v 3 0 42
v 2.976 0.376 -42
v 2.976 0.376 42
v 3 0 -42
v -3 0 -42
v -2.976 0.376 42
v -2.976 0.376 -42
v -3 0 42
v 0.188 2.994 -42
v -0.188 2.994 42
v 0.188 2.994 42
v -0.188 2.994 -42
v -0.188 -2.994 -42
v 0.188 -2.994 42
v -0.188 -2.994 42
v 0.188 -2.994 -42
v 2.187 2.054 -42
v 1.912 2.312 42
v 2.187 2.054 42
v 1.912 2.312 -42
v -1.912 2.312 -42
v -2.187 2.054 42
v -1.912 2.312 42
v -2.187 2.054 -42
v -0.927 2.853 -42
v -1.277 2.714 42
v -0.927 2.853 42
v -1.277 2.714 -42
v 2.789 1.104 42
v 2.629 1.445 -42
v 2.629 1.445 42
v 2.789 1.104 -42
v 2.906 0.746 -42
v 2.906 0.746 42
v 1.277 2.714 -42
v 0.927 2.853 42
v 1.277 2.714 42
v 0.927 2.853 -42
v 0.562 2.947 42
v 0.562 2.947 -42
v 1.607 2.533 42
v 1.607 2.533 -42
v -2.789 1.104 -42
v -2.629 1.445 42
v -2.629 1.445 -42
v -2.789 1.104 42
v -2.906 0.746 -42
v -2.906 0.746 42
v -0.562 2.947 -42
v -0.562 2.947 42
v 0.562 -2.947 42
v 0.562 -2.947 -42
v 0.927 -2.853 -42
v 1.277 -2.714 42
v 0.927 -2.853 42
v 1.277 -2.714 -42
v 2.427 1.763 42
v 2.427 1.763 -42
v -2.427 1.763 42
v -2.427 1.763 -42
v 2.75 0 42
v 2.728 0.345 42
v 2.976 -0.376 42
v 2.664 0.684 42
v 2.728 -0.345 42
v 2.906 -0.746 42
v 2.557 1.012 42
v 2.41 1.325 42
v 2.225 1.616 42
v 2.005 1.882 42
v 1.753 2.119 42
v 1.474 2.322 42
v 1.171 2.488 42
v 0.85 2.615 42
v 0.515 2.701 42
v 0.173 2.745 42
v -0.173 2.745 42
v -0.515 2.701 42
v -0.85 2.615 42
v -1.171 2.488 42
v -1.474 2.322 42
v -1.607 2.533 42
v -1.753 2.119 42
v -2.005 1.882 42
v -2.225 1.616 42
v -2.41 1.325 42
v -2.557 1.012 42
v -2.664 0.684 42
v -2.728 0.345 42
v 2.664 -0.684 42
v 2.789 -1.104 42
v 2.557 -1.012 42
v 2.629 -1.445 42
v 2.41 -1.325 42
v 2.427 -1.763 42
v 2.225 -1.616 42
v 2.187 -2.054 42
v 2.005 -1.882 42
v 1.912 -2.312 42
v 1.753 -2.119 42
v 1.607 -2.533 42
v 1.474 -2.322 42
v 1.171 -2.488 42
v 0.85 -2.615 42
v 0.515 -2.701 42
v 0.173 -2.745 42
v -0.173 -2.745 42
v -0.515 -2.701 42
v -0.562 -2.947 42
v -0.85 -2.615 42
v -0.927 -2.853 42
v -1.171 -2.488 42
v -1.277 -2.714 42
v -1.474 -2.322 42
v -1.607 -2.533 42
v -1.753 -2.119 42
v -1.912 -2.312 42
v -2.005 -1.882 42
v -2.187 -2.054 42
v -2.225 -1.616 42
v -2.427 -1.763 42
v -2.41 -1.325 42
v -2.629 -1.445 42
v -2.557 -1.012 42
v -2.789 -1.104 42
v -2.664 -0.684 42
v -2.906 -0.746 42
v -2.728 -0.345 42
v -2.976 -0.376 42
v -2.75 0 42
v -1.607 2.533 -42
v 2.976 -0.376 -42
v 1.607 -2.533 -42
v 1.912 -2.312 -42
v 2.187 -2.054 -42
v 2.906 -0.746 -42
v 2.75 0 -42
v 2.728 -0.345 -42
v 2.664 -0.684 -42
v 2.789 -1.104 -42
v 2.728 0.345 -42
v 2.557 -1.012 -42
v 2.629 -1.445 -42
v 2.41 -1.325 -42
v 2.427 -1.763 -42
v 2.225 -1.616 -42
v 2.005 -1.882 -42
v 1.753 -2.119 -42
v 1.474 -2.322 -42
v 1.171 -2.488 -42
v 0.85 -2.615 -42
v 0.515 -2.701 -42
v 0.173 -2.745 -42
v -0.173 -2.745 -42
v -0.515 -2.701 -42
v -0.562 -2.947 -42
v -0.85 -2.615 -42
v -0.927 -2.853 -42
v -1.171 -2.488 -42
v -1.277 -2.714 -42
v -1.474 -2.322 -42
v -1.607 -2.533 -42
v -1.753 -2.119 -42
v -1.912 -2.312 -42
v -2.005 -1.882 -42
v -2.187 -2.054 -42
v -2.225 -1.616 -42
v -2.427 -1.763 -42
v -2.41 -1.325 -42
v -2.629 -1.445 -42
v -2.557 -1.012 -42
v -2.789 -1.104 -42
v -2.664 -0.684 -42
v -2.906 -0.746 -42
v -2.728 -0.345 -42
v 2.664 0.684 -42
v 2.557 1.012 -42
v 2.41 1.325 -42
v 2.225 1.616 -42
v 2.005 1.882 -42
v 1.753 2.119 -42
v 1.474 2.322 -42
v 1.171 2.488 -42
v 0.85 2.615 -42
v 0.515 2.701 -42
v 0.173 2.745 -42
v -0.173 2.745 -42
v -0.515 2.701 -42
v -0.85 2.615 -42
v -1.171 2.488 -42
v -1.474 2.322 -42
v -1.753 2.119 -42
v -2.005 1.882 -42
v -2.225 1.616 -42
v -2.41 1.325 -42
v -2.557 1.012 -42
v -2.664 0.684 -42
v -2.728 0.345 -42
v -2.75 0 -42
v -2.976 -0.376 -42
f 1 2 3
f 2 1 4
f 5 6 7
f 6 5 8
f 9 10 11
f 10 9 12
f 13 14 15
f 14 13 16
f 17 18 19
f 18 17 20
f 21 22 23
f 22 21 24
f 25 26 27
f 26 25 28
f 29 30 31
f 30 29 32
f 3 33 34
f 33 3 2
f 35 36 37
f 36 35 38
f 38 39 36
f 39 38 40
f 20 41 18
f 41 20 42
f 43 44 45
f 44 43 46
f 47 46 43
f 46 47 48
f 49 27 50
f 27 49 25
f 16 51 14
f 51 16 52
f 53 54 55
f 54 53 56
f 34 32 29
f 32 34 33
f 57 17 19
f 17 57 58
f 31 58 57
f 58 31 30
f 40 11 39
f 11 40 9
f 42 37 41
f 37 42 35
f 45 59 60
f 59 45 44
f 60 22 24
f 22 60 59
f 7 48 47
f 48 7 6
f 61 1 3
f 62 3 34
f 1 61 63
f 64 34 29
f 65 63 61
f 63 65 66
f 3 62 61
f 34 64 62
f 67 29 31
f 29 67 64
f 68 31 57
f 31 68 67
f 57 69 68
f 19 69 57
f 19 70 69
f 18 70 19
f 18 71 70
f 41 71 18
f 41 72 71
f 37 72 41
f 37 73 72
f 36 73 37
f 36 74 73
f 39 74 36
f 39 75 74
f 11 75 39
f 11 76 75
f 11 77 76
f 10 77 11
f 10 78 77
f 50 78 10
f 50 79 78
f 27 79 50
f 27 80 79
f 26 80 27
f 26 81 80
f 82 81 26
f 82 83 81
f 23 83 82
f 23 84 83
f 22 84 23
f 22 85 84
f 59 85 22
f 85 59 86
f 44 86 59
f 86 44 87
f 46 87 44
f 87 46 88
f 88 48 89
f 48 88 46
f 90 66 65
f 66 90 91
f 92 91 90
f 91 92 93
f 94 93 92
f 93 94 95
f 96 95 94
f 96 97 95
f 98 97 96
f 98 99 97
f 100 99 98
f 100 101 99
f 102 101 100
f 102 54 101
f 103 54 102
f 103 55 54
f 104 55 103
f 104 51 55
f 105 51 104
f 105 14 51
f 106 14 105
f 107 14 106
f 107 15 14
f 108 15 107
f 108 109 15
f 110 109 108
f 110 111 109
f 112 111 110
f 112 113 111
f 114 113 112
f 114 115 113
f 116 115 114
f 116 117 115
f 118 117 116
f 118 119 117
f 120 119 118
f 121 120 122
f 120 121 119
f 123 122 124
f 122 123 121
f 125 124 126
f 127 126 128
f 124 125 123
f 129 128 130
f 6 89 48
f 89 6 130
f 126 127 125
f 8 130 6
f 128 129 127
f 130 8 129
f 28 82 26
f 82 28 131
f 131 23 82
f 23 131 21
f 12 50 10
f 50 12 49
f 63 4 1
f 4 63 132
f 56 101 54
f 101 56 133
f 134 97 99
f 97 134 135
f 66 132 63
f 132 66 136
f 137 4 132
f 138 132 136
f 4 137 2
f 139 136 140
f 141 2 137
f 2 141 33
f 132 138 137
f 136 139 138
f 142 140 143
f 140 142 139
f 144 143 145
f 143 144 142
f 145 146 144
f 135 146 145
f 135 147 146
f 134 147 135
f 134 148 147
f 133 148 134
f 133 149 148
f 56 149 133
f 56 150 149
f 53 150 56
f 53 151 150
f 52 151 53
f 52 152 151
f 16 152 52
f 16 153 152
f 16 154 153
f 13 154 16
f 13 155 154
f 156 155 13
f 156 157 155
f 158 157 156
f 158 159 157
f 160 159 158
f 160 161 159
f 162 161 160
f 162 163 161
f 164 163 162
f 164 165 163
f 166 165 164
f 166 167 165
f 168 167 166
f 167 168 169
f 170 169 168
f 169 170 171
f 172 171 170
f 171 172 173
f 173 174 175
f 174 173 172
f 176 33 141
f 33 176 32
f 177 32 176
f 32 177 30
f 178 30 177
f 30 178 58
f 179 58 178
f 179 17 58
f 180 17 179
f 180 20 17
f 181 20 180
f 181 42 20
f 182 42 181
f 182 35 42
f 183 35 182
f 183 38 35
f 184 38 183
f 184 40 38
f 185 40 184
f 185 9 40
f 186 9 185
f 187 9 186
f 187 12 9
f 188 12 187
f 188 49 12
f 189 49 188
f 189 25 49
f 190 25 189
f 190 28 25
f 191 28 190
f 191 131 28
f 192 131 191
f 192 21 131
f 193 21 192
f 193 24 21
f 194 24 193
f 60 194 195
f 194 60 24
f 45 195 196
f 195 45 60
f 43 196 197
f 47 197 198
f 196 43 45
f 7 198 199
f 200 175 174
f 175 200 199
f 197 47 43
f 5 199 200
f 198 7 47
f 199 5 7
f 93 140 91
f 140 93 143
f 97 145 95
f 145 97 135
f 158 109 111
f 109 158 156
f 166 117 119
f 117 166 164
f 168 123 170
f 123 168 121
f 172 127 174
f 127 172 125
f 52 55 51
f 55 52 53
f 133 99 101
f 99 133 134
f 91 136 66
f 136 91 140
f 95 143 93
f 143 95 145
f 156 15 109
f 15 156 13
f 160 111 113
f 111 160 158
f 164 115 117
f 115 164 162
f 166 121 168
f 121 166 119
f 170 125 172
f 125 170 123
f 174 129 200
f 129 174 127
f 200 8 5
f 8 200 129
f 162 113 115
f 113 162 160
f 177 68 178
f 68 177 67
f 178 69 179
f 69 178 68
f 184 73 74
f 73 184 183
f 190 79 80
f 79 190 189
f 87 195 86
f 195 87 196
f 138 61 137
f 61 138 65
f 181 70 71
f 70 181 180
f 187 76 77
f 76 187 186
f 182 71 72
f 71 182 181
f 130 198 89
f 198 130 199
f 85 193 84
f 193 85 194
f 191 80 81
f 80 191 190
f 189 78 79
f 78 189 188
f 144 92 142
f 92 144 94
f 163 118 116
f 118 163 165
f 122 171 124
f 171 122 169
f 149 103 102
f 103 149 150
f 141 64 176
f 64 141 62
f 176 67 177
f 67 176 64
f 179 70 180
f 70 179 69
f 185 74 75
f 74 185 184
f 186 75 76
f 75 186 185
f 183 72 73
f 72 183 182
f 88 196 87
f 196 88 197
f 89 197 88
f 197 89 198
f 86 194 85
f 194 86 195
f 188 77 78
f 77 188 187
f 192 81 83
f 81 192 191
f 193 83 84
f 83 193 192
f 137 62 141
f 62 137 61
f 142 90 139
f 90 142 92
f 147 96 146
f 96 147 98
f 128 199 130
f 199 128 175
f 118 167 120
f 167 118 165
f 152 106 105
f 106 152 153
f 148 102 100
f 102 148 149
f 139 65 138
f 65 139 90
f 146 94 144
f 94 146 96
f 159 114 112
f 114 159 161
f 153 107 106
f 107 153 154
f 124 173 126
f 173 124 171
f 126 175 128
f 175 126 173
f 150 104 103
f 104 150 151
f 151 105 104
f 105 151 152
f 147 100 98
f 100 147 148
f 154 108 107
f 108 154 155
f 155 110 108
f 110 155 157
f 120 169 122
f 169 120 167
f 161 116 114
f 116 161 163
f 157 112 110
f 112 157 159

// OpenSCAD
$fn = 50;


difference() {
	union() {
		translate(v = [0, 0, -42.0000000000]) {
			cylinder(h = 84, r = 3.0000000000);
		}
	}
	union() {
		translate(v = [0, 0, -100.0000000000]) {
			cylinder(h = 200, r = 2.7500000000);
		}
	}
}
